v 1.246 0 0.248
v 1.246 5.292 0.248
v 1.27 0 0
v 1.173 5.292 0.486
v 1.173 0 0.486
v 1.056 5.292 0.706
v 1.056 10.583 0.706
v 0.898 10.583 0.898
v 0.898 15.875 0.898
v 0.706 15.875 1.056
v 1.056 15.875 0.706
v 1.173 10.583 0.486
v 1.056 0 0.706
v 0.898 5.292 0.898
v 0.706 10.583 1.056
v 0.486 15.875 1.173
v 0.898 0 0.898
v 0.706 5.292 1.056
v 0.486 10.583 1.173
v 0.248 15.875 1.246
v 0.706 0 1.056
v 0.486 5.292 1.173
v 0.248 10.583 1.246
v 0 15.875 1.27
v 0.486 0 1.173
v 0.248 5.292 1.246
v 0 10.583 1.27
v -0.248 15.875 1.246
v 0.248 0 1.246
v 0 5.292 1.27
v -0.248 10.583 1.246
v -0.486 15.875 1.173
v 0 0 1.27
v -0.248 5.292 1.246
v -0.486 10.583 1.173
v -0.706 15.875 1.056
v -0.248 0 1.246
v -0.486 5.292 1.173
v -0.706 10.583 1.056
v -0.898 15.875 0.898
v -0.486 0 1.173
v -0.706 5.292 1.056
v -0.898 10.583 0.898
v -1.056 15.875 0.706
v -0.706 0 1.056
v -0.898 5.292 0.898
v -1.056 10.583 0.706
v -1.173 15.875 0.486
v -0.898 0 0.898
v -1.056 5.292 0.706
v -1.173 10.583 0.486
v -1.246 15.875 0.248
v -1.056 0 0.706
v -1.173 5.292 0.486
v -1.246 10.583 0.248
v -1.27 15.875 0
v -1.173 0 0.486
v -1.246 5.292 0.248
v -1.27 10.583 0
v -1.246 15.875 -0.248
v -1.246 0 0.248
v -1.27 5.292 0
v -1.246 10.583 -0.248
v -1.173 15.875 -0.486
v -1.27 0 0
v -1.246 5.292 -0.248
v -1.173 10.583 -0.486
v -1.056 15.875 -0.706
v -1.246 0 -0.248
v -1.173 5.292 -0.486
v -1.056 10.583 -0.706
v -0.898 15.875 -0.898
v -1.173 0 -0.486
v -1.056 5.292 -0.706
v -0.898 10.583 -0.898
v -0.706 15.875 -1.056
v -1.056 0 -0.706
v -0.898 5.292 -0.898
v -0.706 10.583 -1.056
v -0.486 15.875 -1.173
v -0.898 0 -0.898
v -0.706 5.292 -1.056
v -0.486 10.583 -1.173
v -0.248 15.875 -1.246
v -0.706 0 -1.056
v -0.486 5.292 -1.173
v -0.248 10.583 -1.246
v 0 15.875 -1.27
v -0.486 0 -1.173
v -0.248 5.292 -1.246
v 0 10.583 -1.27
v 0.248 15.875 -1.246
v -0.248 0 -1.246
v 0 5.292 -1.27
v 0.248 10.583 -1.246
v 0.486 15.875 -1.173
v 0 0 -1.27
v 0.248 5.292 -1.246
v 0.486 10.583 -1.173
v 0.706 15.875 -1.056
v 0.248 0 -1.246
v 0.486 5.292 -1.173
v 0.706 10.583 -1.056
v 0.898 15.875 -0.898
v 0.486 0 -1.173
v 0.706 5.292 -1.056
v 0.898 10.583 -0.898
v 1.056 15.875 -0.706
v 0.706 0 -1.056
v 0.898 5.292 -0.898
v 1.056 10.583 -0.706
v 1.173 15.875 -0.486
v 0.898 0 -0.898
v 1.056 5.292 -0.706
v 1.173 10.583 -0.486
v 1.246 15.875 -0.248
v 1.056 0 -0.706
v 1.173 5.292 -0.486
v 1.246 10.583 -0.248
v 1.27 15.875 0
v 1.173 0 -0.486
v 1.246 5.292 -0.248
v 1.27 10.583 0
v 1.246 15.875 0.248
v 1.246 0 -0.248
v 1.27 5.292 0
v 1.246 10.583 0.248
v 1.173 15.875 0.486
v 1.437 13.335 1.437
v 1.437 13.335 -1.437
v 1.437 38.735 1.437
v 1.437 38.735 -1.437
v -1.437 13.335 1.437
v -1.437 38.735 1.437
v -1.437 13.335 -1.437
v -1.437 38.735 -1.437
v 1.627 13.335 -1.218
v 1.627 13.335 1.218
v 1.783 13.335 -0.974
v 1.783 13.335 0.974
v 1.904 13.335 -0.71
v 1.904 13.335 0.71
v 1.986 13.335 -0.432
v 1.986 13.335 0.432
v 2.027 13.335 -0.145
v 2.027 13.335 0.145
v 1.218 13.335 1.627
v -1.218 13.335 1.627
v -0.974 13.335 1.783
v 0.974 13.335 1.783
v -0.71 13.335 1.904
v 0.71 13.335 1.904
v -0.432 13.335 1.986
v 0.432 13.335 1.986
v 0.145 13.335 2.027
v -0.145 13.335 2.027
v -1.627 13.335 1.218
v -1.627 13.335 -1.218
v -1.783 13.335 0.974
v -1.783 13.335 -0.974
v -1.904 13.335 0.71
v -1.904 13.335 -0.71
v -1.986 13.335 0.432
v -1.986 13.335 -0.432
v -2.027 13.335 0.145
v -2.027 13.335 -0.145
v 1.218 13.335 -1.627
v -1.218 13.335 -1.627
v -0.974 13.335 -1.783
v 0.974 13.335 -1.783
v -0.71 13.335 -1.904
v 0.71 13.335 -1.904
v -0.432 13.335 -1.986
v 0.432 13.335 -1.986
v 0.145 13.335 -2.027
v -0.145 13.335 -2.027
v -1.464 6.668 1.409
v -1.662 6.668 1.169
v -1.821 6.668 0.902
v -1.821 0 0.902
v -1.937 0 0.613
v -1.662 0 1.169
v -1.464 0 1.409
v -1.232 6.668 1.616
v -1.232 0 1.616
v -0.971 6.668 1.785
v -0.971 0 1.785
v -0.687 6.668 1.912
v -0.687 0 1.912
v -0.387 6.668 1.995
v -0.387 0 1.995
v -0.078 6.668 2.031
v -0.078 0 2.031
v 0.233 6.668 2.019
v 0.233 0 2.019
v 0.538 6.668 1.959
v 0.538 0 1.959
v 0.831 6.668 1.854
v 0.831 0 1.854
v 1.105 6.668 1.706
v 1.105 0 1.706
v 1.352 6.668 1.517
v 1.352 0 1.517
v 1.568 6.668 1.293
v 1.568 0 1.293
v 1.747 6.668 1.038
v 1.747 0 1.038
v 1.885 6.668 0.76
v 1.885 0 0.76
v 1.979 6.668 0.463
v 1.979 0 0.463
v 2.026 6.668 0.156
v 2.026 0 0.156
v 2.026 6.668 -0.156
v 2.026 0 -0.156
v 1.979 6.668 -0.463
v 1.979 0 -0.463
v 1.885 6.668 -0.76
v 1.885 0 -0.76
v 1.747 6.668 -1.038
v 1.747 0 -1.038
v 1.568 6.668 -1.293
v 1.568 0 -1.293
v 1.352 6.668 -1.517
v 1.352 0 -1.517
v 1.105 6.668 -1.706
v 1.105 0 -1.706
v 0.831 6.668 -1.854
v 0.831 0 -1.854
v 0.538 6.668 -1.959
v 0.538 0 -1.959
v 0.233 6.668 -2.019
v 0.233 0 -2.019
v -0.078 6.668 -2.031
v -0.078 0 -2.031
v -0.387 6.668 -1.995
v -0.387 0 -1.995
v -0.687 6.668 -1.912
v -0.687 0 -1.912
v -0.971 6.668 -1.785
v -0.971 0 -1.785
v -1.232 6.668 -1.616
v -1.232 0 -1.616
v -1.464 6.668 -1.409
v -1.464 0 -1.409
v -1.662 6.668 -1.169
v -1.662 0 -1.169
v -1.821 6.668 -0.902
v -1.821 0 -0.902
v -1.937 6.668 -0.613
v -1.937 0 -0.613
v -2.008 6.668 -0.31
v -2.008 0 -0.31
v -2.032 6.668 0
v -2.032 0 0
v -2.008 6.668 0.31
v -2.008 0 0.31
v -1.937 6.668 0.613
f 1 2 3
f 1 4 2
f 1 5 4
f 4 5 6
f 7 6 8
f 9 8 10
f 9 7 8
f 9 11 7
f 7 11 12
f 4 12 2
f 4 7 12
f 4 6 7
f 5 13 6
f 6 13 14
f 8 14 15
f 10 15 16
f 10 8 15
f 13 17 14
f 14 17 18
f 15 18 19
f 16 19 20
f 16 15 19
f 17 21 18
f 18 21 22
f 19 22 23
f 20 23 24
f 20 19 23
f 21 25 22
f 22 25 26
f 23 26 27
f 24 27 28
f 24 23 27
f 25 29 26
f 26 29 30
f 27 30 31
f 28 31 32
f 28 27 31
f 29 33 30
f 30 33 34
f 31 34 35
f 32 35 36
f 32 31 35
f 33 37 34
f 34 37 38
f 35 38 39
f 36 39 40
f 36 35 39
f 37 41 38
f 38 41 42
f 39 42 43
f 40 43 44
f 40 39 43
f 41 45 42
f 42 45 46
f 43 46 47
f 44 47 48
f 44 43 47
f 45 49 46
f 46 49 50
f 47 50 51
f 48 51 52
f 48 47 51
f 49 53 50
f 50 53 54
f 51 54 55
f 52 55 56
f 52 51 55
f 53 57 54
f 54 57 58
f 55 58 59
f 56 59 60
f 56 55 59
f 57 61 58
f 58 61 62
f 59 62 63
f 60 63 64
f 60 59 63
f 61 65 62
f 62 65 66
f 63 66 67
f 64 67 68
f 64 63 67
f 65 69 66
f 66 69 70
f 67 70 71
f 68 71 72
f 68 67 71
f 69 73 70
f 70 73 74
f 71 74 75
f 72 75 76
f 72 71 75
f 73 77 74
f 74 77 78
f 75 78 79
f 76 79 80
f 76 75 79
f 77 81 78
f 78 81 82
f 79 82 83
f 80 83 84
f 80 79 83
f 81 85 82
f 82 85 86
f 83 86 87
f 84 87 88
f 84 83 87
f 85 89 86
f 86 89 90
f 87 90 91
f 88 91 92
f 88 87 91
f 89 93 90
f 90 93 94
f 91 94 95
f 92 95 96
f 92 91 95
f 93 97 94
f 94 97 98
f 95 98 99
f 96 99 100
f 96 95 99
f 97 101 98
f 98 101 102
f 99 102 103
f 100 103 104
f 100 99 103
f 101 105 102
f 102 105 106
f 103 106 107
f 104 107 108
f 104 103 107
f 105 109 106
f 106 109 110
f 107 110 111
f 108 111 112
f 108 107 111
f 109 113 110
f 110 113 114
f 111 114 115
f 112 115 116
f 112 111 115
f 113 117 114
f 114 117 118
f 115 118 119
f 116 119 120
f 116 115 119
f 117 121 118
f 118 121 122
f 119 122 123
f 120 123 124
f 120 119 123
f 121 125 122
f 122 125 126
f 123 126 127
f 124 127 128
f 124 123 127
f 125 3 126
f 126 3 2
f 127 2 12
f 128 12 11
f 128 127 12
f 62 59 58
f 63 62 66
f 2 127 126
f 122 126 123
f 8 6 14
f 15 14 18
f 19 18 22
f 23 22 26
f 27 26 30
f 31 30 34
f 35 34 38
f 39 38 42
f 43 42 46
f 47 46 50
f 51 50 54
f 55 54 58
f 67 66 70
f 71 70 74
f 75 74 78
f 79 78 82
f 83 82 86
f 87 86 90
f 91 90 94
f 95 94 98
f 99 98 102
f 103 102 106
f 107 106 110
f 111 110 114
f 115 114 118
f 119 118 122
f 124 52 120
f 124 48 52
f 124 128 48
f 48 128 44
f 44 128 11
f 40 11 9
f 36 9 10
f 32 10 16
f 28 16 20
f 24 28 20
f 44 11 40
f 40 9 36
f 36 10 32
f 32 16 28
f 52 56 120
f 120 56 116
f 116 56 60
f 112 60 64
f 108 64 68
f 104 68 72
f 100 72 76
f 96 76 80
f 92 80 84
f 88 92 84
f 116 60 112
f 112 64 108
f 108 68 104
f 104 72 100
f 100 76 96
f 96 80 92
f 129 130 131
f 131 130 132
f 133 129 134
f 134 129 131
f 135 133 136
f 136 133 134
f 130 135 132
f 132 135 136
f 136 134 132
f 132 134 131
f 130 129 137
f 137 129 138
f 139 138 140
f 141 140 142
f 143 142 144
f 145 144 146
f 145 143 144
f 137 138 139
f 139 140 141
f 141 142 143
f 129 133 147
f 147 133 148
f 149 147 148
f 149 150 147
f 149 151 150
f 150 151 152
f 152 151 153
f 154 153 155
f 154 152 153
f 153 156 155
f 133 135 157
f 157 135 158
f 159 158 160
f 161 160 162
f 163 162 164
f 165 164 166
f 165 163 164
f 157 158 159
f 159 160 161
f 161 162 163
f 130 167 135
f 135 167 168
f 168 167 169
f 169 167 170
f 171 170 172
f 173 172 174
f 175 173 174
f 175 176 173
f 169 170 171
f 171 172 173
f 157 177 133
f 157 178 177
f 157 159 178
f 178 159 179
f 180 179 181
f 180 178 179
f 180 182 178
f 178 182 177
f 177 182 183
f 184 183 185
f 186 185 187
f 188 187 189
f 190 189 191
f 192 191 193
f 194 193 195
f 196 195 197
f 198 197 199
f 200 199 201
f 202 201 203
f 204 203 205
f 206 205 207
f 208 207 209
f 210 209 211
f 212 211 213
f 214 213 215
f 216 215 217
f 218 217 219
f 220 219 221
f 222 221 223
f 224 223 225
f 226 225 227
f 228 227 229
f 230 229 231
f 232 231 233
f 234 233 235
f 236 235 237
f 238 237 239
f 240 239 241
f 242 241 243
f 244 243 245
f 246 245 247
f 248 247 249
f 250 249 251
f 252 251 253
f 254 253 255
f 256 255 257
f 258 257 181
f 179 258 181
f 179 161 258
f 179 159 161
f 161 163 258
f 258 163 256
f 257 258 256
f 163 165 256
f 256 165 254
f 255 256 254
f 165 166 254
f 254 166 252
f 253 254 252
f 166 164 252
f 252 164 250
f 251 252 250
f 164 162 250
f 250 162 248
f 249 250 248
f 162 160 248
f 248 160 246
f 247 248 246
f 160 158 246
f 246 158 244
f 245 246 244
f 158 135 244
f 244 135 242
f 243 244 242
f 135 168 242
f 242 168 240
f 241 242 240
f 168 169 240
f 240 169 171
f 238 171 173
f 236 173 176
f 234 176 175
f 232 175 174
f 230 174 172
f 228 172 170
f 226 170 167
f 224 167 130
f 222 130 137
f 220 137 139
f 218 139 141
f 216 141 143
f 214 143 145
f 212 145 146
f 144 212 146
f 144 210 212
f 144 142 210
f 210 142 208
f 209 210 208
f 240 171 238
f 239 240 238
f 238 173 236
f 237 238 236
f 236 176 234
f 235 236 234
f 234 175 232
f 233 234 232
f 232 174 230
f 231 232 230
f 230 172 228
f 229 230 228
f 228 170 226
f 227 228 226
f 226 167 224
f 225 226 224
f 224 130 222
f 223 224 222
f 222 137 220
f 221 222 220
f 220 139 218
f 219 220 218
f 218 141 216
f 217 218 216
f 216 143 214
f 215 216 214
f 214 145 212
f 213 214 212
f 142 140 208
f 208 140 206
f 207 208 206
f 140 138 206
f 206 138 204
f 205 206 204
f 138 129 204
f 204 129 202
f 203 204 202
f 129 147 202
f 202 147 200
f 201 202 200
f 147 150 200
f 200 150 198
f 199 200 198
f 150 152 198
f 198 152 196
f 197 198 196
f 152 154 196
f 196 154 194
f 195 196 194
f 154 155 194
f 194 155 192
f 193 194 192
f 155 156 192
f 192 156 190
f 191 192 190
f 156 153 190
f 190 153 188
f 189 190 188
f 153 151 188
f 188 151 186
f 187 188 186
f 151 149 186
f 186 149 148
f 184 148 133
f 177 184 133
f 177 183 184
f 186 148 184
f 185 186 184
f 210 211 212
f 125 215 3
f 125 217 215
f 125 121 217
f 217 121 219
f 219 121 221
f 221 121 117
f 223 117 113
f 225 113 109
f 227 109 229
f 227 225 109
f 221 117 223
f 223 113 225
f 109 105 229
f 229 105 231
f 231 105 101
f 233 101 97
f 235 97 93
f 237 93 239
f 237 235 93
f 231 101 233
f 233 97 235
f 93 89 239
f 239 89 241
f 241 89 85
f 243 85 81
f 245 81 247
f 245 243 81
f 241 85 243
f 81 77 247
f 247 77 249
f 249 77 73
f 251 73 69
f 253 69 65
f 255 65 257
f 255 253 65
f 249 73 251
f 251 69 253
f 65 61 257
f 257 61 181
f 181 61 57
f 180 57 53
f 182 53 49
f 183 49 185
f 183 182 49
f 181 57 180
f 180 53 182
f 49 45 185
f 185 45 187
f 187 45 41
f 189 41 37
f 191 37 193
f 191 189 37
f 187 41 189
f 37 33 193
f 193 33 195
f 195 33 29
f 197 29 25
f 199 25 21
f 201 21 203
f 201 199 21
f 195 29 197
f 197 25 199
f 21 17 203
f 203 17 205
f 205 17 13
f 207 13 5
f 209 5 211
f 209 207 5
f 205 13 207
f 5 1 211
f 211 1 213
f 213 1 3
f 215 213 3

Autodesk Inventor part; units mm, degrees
ref_plane "YZ Plane" through (0, 0, 0) normal (1, 0, 0) x (0, 1, 0)
ref_plane "XZ Plane" through (0, 0, 0) normal (0, 1, 0) x (-1, 0, 0)
ref_plane "XY Plane" through (0, 0, 0) normal (0, 0, 1) x (1, 0, 0)
sketch "Sketch1" plane through (0, 0, 0) normal (0, 1, 0) x (-1, 0, 0)
  circle A0 centre (0, 0) radius 2.032
  dimension "d0" = 4.064
extrude "Extrusion1" add sketch "Sketch1" along normal blind 13.335
sketch "Sketch2" plane through (0, 13.335, 0) normal (0, 1, 0) x (1, 0, 0)
  circle A0 centre (0, 0) radius 2.032 projected
  line L0 (1.4368, 1.4368) -> (-1.4368, 1.4368)
  line L1 (-1.4368, 1.4368) -> (-1.4368, -1.4368)
  line L2 (-1.4368, -1.4368) -> (1.4368, -1.4368)
  line L3 (1.4368, -1.4368) -> (1.4368, 1.4368)
  line L4 (1.4368, 1.4368) -> (-1.4368, -1.4368) construction
  line L5 (-1.4368, 1.4368) -> (1.4368, -1.4368) construction
extrude "Extrusion2" add sketch "Sketch2" along normal blind 25.4 contours L3 L2 L1 L0
hole "Hole2" at (0, 0, 0) direction (0, 1, 0) diameter 2.54 depth 15.875
properties part number "shaft_adapter"
